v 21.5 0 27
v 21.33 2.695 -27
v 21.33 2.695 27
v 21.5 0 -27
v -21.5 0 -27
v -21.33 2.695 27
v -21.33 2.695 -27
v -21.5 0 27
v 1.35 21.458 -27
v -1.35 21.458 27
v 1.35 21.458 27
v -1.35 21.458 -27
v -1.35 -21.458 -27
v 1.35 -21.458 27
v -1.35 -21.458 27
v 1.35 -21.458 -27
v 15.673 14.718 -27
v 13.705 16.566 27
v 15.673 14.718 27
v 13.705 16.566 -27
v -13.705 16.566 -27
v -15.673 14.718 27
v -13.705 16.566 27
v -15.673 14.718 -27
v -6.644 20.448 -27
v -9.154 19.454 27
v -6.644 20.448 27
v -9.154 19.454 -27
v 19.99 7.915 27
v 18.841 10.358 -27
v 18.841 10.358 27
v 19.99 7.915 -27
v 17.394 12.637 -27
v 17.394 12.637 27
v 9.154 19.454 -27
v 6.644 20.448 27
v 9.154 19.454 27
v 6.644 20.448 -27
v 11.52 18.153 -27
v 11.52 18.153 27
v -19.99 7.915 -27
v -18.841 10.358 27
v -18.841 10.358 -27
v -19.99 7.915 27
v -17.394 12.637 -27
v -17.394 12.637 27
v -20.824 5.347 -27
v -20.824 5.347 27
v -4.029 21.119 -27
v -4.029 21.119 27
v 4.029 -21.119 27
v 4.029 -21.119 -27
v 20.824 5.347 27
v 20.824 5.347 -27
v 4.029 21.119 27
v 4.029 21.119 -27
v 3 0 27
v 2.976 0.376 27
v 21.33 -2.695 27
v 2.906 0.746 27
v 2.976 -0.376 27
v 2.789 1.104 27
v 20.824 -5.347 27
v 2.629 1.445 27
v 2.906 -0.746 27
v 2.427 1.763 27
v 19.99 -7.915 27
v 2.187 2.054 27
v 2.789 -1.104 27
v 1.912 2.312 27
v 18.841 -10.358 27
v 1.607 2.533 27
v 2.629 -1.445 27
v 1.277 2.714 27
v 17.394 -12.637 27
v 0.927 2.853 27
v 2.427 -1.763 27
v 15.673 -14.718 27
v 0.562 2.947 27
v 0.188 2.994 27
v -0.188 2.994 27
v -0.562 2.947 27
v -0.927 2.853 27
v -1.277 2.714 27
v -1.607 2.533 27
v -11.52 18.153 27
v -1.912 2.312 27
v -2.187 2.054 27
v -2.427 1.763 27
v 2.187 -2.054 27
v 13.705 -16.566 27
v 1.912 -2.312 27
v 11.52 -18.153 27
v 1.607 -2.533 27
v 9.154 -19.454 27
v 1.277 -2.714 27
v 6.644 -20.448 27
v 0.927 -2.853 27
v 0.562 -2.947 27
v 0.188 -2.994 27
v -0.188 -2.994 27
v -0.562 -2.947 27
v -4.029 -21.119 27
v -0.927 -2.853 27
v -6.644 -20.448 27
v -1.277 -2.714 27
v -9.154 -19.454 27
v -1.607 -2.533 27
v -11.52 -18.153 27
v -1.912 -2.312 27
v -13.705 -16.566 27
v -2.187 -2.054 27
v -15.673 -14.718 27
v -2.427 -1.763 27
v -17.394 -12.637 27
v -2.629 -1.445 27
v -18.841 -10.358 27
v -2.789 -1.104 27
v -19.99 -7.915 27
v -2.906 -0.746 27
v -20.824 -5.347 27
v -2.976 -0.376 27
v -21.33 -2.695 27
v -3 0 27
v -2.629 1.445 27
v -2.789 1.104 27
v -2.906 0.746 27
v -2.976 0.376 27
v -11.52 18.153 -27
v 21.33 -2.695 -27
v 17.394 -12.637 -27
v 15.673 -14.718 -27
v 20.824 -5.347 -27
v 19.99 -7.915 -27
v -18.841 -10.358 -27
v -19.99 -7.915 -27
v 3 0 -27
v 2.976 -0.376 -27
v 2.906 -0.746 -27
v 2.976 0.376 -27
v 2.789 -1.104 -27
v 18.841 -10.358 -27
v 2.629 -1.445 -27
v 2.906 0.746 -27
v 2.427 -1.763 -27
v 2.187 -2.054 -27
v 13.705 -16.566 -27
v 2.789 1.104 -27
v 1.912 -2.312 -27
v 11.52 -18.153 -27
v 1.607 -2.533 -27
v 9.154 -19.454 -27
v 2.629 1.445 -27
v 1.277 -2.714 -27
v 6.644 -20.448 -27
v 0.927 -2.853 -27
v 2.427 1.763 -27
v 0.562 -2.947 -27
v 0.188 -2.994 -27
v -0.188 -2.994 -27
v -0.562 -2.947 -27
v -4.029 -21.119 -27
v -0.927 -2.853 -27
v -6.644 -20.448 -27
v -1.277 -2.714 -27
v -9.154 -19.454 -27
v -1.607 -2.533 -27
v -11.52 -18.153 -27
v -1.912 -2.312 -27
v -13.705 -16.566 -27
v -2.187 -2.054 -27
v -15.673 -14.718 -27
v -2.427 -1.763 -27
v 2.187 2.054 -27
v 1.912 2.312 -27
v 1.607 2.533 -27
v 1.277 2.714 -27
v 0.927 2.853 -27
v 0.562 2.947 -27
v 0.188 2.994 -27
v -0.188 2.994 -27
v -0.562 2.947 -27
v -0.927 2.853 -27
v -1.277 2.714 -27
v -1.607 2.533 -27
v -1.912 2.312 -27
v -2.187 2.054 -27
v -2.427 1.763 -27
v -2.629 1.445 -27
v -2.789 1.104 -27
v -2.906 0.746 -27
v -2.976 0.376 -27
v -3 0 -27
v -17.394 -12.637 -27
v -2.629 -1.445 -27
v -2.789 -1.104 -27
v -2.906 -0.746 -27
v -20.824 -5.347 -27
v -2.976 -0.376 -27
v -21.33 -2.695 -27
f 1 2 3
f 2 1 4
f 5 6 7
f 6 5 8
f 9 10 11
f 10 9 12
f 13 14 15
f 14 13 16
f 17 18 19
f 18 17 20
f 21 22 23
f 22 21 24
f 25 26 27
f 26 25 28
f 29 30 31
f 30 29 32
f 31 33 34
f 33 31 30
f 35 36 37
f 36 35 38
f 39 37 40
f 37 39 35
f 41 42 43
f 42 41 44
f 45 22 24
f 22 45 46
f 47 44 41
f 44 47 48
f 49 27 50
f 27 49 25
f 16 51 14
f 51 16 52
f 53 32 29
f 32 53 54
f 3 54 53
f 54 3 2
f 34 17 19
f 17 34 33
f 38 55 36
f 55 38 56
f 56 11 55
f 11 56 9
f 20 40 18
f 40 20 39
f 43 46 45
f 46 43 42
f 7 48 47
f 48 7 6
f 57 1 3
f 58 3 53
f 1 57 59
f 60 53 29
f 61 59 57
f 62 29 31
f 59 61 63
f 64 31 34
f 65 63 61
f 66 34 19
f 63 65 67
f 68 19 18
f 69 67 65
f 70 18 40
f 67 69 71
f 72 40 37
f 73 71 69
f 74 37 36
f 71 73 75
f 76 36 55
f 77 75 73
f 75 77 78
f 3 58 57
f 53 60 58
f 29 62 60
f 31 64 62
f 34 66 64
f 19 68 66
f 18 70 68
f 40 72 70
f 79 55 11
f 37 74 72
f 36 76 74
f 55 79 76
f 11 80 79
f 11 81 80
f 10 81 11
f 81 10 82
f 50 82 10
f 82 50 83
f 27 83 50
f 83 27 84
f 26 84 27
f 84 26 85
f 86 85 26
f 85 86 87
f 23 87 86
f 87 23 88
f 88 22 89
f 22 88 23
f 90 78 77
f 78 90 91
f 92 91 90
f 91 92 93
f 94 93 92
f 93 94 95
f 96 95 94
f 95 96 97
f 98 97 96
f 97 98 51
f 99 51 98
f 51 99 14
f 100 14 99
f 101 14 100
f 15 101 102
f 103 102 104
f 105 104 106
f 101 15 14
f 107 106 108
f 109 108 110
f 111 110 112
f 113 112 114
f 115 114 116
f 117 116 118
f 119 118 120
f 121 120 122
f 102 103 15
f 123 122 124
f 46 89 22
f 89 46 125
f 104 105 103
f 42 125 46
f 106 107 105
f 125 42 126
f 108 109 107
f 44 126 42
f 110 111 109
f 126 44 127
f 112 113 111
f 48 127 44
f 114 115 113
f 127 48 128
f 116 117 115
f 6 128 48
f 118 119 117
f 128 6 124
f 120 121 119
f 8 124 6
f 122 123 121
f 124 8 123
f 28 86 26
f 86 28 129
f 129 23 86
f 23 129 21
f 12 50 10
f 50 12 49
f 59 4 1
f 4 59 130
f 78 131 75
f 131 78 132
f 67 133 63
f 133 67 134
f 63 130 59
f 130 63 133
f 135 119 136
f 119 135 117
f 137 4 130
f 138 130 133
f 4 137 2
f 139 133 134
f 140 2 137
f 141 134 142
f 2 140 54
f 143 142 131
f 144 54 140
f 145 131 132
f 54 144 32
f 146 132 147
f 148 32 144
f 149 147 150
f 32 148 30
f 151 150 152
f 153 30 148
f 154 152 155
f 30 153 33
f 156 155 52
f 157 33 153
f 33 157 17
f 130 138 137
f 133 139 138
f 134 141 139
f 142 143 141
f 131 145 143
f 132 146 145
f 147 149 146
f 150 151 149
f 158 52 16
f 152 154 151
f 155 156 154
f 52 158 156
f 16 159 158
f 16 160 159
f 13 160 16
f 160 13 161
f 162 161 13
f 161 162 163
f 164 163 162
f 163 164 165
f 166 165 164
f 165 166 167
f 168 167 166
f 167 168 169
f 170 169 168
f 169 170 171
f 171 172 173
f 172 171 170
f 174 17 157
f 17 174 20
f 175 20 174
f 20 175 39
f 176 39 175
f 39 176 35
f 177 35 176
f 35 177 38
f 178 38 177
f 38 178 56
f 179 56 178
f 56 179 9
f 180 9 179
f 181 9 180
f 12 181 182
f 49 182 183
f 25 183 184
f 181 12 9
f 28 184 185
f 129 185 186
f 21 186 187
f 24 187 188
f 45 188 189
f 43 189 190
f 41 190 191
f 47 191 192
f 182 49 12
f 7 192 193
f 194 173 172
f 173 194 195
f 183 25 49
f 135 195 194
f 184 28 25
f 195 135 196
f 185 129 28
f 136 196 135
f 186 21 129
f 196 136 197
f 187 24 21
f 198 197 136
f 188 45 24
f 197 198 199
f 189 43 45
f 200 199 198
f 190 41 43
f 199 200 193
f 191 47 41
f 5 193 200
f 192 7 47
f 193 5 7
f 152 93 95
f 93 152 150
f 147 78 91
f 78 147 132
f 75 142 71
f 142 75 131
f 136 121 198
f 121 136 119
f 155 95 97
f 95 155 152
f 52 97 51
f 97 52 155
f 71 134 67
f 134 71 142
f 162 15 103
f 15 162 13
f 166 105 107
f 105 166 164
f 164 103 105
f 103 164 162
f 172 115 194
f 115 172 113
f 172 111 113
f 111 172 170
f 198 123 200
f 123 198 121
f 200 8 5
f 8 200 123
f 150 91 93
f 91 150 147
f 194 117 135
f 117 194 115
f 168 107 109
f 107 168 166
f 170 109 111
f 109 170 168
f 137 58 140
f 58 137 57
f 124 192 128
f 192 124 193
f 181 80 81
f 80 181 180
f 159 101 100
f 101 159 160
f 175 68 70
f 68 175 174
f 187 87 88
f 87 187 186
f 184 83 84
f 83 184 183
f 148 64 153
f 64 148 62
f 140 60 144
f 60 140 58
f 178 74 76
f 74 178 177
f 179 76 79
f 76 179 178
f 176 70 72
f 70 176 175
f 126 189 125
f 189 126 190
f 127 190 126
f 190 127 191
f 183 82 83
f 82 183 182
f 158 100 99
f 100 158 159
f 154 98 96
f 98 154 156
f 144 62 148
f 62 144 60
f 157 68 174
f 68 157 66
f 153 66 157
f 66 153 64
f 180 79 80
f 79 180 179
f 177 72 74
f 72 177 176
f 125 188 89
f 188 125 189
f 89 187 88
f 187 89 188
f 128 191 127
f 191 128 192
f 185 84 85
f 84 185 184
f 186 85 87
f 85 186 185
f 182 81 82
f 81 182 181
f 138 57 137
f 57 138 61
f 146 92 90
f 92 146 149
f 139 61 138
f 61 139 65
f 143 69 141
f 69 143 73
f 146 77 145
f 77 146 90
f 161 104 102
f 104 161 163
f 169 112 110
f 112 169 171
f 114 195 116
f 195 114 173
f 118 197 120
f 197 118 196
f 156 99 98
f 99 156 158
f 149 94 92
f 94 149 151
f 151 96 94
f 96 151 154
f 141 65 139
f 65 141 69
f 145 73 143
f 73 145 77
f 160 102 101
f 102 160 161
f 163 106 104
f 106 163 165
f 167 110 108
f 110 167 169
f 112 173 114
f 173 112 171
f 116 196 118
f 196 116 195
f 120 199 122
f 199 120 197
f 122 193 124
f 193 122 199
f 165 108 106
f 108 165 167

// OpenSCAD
$fn = 50;


difference() {
	union() {
		translate(v = [0, 0, -27.0000000000]) {
			cylinder(h = 54, r = 21.5000000000);
		}
	}
	union() {
		translate(v = [0, 0, -100.0000000000]) {
			cylinder(h = 200, r = 3);
		}
	}
}
